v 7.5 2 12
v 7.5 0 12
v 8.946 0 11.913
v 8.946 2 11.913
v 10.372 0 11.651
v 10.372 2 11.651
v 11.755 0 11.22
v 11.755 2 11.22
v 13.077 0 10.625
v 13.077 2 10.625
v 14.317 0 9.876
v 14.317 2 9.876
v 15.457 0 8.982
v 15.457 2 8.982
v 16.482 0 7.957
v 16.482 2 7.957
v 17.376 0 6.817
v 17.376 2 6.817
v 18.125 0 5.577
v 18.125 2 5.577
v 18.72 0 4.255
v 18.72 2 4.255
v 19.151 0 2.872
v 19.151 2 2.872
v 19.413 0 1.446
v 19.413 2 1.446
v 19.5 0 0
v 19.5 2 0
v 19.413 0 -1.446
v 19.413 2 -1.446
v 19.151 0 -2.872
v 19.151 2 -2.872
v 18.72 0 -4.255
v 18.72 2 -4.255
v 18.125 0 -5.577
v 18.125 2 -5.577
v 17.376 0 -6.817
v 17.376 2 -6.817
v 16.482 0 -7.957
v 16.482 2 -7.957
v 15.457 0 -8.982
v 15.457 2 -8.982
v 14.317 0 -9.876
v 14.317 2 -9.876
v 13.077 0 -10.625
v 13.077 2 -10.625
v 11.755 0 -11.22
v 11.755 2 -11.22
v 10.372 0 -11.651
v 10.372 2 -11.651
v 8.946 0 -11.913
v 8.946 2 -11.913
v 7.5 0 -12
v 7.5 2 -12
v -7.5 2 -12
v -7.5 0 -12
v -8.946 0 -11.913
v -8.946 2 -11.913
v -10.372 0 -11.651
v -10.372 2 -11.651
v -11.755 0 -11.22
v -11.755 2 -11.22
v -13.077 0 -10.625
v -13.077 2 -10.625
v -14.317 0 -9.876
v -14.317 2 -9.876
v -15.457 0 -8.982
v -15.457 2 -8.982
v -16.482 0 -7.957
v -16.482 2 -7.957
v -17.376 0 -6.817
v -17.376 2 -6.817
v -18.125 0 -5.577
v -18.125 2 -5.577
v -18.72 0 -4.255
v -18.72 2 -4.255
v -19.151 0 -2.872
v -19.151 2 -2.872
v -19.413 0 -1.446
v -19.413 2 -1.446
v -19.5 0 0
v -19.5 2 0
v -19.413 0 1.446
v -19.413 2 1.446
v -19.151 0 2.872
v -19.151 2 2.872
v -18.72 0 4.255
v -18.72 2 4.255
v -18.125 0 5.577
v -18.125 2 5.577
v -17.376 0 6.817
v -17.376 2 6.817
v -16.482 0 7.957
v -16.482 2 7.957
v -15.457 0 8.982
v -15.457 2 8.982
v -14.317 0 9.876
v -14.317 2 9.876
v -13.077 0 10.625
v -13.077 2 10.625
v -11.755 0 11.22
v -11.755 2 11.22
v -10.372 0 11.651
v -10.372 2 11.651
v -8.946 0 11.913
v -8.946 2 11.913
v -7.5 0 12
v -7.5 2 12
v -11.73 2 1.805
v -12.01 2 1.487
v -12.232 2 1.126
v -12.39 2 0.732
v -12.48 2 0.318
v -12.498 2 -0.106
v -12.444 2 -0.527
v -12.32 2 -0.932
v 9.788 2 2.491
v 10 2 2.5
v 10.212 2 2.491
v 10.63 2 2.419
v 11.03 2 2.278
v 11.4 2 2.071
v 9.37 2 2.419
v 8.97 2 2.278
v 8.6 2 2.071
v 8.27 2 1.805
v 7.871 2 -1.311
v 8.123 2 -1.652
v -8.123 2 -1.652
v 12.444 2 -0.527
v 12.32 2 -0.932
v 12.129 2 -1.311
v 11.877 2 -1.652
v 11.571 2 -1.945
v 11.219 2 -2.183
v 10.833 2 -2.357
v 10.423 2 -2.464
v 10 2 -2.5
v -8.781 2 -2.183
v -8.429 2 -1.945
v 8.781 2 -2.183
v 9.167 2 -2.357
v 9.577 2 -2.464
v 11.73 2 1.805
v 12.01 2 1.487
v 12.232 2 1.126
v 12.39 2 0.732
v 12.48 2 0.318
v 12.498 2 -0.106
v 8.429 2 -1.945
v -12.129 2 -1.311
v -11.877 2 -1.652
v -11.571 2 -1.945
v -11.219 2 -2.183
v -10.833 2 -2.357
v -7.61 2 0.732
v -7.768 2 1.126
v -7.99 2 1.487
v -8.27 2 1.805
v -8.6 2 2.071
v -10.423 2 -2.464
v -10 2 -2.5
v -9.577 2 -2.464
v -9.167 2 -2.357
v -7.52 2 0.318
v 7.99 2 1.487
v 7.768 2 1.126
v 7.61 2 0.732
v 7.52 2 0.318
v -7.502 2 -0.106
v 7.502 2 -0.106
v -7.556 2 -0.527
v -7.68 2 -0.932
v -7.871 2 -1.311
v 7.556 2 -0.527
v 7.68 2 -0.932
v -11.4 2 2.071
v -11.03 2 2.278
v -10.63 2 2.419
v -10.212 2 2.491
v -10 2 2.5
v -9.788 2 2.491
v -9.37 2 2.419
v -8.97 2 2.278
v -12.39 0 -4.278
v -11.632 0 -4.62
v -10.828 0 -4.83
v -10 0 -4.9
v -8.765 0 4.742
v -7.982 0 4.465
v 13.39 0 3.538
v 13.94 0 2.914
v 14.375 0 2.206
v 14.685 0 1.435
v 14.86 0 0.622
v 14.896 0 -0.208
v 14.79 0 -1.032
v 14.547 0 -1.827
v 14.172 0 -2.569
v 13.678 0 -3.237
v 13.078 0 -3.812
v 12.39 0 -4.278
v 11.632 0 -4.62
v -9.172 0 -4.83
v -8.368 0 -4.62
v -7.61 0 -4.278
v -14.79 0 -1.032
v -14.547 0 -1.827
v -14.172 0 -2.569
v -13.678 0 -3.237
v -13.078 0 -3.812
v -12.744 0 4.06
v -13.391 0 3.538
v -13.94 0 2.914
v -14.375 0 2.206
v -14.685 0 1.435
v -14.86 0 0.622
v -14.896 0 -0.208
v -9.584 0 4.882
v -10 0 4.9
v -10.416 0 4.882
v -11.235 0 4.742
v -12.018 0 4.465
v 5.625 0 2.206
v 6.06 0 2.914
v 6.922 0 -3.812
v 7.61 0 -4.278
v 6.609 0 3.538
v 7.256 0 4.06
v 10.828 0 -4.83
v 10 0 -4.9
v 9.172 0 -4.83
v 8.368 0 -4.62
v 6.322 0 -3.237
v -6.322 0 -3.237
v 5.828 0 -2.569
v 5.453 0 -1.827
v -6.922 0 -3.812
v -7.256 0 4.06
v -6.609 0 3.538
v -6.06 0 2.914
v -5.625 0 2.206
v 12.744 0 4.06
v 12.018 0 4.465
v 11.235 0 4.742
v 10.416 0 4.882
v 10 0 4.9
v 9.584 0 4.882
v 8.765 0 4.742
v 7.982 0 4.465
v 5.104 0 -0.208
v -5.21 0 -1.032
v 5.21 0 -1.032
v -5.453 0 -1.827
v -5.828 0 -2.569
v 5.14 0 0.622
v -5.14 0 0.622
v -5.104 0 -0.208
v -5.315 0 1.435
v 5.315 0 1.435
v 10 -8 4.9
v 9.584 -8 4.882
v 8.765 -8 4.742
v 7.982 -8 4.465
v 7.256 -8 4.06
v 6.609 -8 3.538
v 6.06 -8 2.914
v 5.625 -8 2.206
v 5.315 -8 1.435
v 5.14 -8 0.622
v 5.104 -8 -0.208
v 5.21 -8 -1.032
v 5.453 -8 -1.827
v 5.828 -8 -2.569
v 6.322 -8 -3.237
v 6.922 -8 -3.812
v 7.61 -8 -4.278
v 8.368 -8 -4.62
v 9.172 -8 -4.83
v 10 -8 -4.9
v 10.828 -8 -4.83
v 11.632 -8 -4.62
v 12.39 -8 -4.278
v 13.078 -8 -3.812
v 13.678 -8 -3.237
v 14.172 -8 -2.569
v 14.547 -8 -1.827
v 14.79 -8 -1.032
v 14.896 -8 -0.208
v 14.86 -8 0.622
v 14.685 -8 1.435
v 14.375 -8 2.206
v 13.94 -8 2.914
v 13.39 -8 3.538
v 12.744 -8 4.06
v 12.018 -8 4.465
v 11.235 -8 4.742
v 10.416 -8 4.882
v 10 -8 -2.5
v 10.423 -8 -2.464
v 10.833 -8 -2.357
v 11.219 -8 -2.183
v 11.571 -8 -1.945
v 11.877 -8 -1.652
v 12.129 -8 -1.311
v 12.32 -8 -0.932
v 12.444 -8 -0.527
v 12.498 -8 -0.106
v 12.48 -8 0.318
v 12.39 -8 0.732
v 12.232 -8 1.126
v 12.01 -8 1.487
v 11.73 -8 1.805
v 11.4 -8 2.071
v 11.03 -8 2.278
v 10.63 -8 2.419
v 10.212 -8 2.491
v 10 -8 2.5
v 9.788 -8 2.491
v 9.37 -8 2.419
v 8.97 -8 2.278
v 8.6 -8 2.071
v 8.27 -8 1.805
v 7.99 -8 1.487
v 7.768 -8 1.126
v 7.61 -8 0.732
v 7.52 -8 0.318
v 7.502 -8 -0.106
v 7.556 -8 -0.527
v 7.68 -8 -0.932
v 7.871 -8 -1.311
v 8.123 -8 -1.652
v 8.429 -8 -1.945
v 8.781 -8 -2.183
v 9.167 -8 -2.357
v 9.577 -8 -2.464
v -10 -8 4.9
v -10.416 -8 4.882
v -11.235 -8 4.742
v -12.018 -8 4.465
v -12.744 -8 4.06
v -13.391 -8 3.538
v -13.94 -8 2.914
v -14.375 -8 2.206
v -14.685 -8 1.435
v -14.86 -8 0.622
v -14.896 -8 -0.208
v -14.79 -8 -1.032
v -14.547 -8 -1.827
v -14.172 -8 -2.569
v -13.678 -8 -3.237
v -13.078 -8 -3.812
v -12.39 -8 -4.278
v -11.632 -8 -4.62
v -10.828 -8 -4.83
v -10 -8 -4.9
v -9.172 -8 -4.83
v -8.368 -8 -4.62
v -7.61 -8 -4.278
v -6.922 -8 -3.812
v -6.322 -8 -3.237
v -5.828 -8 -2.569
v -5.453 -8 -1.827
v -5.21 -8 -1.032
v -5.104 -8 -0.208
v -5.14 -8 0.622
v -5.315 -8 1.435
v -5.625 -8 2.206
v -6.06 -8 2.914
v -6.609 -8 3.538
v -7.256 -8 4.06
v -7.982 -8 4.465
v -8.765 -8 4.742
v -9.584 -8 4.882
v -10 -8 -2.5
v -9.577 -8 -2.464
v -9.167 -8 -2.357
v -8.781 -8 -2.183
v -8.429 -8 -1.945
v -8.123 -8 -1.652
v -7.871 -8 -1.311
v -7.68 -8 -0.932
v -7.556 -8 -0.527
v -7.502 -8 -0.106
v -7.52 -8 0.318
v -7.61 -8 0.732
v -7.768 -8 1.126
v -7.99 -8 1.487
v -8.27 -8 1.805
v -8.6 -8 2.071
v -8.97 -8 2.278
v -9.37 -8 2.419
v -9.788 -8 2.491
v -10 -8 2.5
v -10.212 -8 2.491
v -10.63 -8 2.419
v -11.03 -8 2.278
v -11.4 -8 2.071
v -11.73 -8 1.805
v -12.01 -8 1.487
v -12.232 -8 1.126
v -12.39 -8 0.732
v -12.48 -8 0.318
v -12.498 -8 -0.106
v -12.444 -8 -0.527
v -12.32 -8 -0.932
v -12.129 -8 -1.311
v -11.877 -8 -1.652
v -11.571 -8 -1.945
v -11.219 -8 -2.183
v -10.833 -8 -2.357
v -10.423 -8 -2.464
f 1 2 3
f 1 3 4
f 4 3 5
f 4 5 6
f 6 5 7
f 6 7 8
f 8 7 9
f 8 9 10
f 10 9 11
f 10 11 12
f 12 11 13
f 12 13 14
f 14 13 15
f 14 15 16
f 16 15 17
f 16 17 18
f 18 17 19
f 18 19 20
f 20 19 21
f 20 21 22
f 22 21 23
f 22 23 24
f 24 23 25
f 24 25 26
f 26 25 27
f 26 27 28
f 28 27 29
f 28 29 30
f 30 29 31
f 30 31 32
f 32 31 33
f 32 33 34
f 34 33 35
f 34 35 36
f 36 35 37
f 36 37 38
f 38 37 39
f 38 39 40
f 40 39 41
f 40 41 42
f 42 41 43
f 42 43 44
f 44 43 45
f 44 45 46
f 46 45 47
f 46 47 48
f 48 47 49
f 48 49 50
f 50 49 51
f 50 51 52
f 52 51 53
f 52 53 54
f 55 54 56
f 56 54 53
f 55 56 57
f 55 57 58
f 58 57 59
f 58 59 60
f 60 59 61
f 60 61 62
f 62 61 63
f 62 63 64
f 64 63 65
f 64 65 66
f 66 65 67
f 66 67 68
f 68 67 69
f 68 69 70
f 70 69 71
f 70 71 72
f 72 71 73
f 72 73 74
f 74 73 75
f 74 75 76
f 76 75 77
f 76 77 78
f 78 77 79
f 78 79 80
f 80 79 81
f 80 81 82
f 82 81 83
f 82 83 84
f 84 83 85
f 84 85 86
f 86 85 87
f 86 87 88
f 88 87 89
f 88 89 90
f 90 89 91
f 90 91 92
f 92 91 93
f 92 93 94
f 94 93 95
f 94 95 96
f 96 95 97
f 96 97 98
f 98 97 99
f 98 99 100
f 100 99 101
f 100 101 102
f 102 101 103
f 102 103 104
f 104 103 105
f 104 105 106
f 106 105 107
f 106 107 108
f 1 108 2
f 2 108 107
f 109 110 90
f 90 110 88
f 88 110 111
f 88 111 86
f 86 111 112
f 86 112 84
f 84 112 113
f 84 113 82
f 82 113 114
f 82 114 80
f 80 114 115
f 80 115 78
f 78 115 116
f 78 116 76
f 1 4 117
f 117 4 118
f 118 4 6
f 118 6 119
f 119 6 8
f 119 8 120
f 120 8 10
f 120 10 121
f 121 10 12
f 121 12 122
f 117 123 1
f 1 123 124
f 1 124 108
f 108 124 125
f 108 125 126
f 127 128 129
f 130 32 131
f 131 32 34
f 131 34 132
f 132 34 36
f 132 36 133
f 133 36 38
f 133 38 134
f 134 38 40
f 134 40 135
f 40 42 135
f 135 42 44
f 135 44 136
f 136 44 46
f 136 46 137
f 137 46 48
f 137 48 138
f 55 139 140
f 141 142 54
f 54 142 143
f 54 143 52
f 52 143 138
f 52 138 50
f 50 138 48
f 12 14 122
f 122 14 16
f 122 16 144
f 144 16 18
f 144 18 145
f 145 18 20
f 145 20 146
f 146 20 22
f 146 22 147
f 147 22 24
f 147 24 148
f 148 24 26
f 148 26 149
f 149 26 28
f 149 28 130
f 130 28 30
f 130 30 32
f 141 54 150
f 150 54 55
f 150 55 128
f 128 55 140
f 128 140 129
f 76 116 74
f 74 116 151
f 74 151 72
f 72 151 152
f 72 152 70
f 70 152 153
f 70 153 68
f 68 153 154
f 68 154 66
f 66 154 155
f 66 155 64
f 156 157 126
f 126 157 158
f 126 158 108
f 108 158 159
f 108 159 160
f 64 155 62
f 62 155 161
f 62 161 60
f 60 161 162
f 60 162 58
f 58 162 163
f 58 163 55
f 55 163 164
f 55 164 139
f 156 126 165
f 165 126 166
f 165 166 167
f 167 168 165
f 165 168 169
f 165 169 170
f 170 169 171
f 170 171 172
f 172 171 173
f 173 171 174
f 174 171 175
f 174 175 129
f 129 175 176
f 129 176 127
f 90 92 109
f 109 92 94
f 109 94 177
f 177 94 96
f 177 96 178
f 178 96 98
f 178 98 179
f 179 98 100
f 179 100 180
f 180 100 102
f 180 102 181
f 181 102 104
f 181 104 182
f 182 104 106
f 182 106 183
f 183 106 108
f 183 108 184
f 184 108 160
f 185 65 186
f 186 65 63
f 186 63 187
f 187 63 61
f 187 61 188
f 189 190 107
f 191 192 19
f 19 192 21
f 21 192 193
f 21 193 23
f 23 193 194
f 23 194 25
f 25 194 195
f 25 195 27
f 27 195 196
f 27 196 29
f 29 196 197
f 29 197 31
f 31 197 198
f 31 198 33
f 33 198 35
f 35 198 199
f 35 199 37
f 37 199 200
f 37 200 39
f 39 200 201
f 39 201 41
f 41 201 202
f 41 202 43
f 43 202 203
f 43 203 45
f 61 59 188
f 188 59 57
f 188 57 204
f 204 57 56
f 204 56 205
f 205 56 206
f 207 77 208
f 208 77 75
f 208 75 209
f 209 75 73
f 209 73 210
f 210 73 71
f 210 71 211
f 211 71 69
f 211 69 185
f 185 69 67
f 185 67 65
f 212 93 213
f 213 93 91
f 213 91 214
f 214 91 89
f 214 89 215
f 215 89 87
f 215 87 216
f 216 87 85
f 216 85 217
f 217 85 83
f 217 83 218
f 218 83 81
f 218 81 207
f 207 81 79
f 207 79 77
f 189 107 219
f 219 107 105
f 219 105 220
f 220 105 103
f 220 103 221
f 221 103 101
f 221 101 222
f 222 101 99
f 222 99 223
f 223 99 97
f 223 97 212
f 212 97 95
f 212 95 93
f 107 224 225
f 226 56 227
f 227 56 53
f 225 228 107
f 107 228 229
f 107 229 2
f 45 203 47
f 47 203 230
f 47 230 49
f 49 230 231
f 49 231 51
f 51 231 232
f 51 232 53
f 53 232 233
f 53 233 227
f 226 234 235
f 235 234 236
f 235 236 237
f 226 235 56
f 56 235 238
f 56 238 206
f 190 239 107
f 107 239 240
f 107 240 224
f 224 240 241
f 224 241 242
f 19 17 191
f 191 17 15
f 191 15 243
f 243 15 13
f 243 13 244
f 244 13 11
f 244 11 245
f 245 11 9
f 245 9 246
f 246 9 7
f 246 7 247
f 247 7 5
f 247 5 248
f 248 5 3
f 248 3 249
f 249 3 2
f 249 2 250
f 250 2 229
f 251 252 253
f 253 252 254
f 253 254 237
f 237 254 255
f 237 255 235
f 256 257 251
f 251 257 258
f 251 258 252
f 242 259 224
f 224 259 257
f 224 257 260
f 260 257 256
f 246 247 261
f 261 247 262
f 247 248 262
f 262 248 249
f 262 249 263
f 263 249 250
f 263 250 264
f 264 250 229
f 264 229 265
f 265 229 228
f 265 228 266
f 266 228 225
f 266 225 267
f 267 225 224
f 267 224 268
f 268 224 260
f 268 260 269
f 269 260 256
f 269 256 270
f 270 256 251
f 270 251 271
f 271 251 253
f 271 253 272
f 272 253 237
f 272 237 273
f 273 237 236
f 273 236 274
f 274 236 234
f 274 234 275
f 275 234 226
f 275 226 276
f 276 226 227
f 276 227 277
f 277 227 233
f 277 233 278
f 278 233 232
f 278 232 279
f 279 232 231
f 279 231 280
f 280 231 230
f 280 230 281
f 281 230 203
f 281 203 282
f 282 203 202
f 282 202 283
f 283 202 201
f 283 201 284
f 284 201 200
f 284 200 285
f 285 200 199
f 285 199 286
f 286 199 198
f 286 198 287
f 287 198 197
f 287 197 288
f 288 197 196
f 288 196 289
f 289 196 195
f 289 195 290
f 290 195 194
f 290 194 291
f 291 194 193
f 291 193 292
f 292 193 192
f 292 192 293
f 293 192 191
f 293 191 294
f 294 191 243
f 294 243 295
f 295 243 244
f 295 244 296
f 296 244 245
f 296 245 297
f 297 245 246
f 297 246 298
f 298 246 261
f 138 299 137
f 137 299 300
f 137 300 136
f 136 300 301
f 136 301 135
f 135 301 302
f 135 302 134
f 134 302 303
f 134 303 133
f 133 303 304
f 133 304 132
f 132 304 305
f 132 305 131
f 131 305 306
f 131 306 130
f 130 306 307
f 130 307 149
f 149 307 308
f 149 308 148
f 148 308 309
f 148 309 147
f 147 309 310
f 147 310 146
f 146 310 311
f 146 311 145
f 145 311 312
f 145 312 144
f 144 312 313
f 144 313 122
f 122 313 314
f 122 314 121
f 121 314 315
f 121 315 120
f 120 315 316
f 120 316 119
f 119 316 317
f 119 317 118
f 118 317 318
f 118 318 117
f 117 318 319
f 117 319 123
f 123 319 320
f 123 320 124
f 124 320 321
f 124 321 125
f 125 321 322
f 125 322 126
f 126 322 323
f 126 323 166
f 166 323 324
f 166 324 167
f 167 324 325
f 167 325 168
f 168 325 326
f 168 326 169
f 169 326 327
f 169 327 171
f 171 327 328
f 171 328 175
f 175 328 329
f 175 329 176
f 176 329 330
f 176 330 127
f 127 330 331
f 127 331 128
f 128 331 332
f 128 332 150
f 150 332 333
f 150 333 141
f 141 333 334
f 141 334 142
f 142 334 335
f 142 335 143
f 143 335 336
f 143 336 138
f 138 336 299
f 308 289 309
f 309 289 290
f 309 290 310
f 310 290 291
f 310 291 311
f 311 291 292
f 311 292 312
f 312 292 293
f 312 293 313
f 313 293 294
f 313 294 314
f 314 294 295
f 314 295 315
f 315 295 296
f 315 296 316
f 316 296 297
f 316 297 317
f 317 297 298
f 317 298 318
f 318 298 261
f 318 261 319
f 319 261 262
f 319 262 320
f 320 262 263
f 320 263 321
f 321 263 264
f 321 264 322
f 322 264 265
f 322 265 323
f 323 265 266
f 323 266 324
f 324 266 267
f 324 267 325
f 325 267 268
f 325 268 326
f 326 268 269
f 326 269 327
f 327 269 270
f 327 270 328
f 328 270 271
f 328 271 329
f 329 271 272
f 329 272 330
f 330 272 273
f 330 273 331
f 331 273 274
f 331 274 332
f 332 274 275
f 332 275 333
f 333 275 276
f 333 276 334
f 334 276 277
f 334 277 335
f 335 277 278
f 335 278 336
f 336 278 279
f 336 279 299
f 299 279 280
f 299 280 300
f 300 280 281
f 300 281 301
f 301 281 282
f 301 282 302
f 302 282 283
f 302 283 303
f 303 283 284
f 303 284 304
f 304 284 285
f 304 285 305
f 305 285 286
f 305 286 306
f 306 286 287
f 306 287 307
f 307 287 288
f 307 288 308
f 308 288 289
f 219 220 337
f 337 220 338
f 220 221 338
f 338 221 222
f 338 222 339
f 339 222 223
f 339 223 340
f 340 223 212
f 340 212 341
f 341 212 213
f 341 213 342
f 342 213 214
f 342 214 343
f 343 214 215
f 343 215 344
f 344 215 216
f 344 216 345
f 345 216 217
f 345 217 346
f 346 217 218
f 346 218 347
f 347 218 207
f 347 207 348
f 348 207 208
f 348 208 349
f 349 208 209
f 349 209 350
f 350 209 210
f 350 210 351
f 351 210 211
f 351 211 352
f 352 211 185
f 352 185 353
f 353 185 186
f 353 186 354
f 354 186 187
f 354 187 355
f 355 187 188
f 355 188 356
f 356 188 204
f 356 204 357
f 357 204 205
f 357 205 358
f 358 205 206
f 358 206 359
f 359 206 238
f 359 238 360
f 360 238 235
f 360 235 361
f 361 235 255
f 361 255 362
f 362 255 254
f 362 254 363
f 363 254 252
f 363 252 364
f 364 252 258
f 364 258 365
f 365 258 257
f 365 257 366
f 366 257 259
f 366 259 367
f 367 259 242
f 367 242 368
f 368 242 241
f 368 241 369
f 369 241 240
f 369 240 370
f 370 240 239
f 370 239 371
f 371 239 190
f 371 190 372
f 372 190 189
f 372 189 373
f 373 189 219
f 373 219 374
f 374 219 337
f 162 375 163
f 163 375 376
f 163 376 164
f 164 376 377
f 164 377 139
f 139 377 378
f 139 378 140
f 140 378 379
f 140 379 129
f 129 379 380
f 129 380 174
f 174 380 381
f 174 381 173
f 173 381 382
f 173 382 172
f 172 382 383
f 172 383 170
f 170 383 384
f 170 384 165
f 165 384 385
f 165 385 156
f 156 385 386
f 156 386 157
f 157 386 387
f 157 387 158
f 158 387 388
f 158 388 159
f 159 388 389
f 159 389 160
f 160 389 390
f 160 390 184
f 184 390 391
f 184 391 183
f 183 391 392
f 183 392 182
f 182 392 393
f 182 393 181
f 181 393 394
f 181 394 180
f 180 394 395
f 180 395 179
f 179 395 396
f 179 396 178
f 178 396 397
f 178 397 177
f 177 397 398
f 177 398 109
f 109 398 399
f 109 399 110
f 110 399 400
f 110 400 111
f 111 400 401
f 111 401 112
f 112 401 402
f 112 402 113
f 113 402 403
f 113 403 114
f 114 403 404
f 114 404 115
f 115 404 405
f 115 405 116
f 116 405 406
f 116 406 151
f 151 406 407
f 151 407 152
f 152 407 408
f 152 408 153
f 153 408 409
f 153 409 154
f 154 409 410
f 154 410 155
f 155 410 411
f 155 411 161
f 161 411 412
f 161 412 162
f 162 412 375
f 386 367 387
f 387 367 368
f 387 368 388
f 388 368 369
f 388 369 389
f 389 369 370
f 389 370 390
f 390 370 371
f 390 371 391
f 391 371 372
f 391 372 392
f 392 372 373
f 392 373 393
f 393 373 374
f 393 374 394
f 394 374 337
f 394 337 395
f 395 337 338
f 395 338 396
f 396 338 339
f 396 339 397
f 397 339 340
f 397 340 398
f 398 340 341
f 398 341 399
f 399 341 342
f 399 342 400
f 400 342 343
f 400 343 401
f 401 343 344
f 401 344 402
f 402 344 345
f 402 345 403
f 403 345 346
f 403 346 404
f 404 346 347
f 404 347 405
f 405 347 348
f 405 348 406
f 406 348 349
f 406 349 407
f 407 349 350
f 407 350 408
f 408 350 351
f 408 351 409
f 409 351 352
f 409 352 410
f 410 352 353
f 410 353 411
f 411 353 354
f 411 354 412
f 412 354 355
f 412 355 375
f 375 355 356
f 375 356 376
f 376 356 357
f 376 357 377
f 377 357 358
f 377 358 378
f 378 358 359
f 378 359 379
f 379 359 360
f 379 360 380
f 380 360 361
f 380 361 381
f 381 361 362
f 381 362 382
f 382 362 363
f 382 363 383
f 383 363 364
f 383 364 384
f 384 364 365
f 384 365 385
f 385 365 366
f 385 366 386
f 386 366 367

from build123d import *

# Parameters (mm, degrees)
SKETCH1_R                  = 4.9
BOSS_EXTRUDE1_DEPTH        = 2
BOSS_EXTRUDE2_DEPTH        = 2
BOSS_EXTRUDE2_DEPTH_BACK   = 8
SKETCH1_3_R                = 4.9
SKETCH1_3_R_2              = 2.5
BOSS_EXTRUDE2_2_DEPTH      = 2
BOSS_EXTRUDE2_2_DEPTH_BACK = 8
SKETCH2_R                  = 5.756408641
SKETCH2_R_2                = 3.886057863
SKETCH2_R_3                = 6.078413945
SKETCH2_R_4                = 3.85710511
BOSS_EXTRUDE3_DEPTH        = 2


with BuildPart() as part:
    # Sketch1 → Boss-Extrude1 (new body)
    with BuildSketch(Plane(origin=(0, 0, 0), x_dir=(1, 0, 0), z_dir=(0, 1, 0))):
        with BuildLine():
            Line((7.5, 12), (-7.5, 12))
            ThreePointArc((-7.5, 12), (-19.5, 0), (-7.5, -12))
            Line((-7.5, -12), (7.5, -12))
            ThreePointArc((7.5, -12), (19.5, 0), (7.5, 12))
        make_face()
        with Locations((-10, 0)):
            Circle(SKETCH1_R, mode=Mode.SUBTRACT)
        with Locations((10, 0)):
            Circle(SKETCH1_R, mode=Mode.SUBTRACT)
    extrude(amount=BOSS_EXTRUDE1_DEPTH)



with BuildPart() as body_2:
    # Sketch1<3> → Boss-Extrude2 (new, two sides: drawn at the far end of the back side and taken through both)
    with BuildSketch(Plane(origin=(0, 0, 0), x_dir=(1, 0, 0), z_dir=(0, 1, 0)).offset(-BOSS_EXTRUDE2_DEPTH_BACK)):
        with Locations((-10, 0)):
            Circle(SKETCH1_3_R)
        with Locations((-10, 0)):
            Circle(SKETCH1_3_R_2, mode=Mode.SUBTRACT)
    extrude(amount=BOSS_EXTRUDE2_DEPTH + BOSS_EXTRUDE2_DEPTH_BACK)


with BuildPart() as body_3:
    # Sketch1<3> → Boss-Extrude2 2 (new, two sides: drawn at the far end of the back side and taken through both)
    with BuildSketch(Plane(origin=(0, 0, 0), x_dir=(1, 0, 0), z_dir=(0, 1, 0)).offset(-BOSS_EXTRUDE2_2_DEPTH_BACK)):
        with Locations((10, 0)):
            Circle(SKETCH1_3_R)
        with Locations((10, 0)):
            Circle(SKETCH1_3_R_2, mode=Mode.SUBTRACT)
    extrude(amount=BOSS_EXTRUDE2_2_DEPTH + BOSS_EXTRUDE2_2_DEPTH_BACK)


with BuildPart() as part_1:
    add(part.part)

    add(body_2.part)  # Boss-Extrude3 merges body 2

    add(body_3.part)  # Boss-Extrude3 merges body 3
    # Sketch2 → Boss-Extrude3 (add)
    # profile 1 of 2: a face of its own
    with BuildSketch(Plane(origin=(0, 2, 0), x_dir=(1, 0, 0), z_dir=(0, 1, 0))):
        with Locations((-10, 0)):
            Circle(SKETCH2_R)
        with Locations((-10, 0)):
            Circle(SKETCH2_R_2, mode=Mode.SUBTRACT)
    # profile 2 of 2: a face of its own
    with BuildSketch(Plane(origin=(0, 2, 0), x_dir=(1, 0, 0), z_dir=(0, 1, 0))):
        with Locations((10, 0)):
            Circle(SKETCH2_R_3)
        with Locations((10, 0)):
            Circle(SKETCH2_R_4, mode=Mode.SUBTRACT)
    extrude(amount=-BOSS_EXTRUDE3_DEPTH)


solid = part_1.part
